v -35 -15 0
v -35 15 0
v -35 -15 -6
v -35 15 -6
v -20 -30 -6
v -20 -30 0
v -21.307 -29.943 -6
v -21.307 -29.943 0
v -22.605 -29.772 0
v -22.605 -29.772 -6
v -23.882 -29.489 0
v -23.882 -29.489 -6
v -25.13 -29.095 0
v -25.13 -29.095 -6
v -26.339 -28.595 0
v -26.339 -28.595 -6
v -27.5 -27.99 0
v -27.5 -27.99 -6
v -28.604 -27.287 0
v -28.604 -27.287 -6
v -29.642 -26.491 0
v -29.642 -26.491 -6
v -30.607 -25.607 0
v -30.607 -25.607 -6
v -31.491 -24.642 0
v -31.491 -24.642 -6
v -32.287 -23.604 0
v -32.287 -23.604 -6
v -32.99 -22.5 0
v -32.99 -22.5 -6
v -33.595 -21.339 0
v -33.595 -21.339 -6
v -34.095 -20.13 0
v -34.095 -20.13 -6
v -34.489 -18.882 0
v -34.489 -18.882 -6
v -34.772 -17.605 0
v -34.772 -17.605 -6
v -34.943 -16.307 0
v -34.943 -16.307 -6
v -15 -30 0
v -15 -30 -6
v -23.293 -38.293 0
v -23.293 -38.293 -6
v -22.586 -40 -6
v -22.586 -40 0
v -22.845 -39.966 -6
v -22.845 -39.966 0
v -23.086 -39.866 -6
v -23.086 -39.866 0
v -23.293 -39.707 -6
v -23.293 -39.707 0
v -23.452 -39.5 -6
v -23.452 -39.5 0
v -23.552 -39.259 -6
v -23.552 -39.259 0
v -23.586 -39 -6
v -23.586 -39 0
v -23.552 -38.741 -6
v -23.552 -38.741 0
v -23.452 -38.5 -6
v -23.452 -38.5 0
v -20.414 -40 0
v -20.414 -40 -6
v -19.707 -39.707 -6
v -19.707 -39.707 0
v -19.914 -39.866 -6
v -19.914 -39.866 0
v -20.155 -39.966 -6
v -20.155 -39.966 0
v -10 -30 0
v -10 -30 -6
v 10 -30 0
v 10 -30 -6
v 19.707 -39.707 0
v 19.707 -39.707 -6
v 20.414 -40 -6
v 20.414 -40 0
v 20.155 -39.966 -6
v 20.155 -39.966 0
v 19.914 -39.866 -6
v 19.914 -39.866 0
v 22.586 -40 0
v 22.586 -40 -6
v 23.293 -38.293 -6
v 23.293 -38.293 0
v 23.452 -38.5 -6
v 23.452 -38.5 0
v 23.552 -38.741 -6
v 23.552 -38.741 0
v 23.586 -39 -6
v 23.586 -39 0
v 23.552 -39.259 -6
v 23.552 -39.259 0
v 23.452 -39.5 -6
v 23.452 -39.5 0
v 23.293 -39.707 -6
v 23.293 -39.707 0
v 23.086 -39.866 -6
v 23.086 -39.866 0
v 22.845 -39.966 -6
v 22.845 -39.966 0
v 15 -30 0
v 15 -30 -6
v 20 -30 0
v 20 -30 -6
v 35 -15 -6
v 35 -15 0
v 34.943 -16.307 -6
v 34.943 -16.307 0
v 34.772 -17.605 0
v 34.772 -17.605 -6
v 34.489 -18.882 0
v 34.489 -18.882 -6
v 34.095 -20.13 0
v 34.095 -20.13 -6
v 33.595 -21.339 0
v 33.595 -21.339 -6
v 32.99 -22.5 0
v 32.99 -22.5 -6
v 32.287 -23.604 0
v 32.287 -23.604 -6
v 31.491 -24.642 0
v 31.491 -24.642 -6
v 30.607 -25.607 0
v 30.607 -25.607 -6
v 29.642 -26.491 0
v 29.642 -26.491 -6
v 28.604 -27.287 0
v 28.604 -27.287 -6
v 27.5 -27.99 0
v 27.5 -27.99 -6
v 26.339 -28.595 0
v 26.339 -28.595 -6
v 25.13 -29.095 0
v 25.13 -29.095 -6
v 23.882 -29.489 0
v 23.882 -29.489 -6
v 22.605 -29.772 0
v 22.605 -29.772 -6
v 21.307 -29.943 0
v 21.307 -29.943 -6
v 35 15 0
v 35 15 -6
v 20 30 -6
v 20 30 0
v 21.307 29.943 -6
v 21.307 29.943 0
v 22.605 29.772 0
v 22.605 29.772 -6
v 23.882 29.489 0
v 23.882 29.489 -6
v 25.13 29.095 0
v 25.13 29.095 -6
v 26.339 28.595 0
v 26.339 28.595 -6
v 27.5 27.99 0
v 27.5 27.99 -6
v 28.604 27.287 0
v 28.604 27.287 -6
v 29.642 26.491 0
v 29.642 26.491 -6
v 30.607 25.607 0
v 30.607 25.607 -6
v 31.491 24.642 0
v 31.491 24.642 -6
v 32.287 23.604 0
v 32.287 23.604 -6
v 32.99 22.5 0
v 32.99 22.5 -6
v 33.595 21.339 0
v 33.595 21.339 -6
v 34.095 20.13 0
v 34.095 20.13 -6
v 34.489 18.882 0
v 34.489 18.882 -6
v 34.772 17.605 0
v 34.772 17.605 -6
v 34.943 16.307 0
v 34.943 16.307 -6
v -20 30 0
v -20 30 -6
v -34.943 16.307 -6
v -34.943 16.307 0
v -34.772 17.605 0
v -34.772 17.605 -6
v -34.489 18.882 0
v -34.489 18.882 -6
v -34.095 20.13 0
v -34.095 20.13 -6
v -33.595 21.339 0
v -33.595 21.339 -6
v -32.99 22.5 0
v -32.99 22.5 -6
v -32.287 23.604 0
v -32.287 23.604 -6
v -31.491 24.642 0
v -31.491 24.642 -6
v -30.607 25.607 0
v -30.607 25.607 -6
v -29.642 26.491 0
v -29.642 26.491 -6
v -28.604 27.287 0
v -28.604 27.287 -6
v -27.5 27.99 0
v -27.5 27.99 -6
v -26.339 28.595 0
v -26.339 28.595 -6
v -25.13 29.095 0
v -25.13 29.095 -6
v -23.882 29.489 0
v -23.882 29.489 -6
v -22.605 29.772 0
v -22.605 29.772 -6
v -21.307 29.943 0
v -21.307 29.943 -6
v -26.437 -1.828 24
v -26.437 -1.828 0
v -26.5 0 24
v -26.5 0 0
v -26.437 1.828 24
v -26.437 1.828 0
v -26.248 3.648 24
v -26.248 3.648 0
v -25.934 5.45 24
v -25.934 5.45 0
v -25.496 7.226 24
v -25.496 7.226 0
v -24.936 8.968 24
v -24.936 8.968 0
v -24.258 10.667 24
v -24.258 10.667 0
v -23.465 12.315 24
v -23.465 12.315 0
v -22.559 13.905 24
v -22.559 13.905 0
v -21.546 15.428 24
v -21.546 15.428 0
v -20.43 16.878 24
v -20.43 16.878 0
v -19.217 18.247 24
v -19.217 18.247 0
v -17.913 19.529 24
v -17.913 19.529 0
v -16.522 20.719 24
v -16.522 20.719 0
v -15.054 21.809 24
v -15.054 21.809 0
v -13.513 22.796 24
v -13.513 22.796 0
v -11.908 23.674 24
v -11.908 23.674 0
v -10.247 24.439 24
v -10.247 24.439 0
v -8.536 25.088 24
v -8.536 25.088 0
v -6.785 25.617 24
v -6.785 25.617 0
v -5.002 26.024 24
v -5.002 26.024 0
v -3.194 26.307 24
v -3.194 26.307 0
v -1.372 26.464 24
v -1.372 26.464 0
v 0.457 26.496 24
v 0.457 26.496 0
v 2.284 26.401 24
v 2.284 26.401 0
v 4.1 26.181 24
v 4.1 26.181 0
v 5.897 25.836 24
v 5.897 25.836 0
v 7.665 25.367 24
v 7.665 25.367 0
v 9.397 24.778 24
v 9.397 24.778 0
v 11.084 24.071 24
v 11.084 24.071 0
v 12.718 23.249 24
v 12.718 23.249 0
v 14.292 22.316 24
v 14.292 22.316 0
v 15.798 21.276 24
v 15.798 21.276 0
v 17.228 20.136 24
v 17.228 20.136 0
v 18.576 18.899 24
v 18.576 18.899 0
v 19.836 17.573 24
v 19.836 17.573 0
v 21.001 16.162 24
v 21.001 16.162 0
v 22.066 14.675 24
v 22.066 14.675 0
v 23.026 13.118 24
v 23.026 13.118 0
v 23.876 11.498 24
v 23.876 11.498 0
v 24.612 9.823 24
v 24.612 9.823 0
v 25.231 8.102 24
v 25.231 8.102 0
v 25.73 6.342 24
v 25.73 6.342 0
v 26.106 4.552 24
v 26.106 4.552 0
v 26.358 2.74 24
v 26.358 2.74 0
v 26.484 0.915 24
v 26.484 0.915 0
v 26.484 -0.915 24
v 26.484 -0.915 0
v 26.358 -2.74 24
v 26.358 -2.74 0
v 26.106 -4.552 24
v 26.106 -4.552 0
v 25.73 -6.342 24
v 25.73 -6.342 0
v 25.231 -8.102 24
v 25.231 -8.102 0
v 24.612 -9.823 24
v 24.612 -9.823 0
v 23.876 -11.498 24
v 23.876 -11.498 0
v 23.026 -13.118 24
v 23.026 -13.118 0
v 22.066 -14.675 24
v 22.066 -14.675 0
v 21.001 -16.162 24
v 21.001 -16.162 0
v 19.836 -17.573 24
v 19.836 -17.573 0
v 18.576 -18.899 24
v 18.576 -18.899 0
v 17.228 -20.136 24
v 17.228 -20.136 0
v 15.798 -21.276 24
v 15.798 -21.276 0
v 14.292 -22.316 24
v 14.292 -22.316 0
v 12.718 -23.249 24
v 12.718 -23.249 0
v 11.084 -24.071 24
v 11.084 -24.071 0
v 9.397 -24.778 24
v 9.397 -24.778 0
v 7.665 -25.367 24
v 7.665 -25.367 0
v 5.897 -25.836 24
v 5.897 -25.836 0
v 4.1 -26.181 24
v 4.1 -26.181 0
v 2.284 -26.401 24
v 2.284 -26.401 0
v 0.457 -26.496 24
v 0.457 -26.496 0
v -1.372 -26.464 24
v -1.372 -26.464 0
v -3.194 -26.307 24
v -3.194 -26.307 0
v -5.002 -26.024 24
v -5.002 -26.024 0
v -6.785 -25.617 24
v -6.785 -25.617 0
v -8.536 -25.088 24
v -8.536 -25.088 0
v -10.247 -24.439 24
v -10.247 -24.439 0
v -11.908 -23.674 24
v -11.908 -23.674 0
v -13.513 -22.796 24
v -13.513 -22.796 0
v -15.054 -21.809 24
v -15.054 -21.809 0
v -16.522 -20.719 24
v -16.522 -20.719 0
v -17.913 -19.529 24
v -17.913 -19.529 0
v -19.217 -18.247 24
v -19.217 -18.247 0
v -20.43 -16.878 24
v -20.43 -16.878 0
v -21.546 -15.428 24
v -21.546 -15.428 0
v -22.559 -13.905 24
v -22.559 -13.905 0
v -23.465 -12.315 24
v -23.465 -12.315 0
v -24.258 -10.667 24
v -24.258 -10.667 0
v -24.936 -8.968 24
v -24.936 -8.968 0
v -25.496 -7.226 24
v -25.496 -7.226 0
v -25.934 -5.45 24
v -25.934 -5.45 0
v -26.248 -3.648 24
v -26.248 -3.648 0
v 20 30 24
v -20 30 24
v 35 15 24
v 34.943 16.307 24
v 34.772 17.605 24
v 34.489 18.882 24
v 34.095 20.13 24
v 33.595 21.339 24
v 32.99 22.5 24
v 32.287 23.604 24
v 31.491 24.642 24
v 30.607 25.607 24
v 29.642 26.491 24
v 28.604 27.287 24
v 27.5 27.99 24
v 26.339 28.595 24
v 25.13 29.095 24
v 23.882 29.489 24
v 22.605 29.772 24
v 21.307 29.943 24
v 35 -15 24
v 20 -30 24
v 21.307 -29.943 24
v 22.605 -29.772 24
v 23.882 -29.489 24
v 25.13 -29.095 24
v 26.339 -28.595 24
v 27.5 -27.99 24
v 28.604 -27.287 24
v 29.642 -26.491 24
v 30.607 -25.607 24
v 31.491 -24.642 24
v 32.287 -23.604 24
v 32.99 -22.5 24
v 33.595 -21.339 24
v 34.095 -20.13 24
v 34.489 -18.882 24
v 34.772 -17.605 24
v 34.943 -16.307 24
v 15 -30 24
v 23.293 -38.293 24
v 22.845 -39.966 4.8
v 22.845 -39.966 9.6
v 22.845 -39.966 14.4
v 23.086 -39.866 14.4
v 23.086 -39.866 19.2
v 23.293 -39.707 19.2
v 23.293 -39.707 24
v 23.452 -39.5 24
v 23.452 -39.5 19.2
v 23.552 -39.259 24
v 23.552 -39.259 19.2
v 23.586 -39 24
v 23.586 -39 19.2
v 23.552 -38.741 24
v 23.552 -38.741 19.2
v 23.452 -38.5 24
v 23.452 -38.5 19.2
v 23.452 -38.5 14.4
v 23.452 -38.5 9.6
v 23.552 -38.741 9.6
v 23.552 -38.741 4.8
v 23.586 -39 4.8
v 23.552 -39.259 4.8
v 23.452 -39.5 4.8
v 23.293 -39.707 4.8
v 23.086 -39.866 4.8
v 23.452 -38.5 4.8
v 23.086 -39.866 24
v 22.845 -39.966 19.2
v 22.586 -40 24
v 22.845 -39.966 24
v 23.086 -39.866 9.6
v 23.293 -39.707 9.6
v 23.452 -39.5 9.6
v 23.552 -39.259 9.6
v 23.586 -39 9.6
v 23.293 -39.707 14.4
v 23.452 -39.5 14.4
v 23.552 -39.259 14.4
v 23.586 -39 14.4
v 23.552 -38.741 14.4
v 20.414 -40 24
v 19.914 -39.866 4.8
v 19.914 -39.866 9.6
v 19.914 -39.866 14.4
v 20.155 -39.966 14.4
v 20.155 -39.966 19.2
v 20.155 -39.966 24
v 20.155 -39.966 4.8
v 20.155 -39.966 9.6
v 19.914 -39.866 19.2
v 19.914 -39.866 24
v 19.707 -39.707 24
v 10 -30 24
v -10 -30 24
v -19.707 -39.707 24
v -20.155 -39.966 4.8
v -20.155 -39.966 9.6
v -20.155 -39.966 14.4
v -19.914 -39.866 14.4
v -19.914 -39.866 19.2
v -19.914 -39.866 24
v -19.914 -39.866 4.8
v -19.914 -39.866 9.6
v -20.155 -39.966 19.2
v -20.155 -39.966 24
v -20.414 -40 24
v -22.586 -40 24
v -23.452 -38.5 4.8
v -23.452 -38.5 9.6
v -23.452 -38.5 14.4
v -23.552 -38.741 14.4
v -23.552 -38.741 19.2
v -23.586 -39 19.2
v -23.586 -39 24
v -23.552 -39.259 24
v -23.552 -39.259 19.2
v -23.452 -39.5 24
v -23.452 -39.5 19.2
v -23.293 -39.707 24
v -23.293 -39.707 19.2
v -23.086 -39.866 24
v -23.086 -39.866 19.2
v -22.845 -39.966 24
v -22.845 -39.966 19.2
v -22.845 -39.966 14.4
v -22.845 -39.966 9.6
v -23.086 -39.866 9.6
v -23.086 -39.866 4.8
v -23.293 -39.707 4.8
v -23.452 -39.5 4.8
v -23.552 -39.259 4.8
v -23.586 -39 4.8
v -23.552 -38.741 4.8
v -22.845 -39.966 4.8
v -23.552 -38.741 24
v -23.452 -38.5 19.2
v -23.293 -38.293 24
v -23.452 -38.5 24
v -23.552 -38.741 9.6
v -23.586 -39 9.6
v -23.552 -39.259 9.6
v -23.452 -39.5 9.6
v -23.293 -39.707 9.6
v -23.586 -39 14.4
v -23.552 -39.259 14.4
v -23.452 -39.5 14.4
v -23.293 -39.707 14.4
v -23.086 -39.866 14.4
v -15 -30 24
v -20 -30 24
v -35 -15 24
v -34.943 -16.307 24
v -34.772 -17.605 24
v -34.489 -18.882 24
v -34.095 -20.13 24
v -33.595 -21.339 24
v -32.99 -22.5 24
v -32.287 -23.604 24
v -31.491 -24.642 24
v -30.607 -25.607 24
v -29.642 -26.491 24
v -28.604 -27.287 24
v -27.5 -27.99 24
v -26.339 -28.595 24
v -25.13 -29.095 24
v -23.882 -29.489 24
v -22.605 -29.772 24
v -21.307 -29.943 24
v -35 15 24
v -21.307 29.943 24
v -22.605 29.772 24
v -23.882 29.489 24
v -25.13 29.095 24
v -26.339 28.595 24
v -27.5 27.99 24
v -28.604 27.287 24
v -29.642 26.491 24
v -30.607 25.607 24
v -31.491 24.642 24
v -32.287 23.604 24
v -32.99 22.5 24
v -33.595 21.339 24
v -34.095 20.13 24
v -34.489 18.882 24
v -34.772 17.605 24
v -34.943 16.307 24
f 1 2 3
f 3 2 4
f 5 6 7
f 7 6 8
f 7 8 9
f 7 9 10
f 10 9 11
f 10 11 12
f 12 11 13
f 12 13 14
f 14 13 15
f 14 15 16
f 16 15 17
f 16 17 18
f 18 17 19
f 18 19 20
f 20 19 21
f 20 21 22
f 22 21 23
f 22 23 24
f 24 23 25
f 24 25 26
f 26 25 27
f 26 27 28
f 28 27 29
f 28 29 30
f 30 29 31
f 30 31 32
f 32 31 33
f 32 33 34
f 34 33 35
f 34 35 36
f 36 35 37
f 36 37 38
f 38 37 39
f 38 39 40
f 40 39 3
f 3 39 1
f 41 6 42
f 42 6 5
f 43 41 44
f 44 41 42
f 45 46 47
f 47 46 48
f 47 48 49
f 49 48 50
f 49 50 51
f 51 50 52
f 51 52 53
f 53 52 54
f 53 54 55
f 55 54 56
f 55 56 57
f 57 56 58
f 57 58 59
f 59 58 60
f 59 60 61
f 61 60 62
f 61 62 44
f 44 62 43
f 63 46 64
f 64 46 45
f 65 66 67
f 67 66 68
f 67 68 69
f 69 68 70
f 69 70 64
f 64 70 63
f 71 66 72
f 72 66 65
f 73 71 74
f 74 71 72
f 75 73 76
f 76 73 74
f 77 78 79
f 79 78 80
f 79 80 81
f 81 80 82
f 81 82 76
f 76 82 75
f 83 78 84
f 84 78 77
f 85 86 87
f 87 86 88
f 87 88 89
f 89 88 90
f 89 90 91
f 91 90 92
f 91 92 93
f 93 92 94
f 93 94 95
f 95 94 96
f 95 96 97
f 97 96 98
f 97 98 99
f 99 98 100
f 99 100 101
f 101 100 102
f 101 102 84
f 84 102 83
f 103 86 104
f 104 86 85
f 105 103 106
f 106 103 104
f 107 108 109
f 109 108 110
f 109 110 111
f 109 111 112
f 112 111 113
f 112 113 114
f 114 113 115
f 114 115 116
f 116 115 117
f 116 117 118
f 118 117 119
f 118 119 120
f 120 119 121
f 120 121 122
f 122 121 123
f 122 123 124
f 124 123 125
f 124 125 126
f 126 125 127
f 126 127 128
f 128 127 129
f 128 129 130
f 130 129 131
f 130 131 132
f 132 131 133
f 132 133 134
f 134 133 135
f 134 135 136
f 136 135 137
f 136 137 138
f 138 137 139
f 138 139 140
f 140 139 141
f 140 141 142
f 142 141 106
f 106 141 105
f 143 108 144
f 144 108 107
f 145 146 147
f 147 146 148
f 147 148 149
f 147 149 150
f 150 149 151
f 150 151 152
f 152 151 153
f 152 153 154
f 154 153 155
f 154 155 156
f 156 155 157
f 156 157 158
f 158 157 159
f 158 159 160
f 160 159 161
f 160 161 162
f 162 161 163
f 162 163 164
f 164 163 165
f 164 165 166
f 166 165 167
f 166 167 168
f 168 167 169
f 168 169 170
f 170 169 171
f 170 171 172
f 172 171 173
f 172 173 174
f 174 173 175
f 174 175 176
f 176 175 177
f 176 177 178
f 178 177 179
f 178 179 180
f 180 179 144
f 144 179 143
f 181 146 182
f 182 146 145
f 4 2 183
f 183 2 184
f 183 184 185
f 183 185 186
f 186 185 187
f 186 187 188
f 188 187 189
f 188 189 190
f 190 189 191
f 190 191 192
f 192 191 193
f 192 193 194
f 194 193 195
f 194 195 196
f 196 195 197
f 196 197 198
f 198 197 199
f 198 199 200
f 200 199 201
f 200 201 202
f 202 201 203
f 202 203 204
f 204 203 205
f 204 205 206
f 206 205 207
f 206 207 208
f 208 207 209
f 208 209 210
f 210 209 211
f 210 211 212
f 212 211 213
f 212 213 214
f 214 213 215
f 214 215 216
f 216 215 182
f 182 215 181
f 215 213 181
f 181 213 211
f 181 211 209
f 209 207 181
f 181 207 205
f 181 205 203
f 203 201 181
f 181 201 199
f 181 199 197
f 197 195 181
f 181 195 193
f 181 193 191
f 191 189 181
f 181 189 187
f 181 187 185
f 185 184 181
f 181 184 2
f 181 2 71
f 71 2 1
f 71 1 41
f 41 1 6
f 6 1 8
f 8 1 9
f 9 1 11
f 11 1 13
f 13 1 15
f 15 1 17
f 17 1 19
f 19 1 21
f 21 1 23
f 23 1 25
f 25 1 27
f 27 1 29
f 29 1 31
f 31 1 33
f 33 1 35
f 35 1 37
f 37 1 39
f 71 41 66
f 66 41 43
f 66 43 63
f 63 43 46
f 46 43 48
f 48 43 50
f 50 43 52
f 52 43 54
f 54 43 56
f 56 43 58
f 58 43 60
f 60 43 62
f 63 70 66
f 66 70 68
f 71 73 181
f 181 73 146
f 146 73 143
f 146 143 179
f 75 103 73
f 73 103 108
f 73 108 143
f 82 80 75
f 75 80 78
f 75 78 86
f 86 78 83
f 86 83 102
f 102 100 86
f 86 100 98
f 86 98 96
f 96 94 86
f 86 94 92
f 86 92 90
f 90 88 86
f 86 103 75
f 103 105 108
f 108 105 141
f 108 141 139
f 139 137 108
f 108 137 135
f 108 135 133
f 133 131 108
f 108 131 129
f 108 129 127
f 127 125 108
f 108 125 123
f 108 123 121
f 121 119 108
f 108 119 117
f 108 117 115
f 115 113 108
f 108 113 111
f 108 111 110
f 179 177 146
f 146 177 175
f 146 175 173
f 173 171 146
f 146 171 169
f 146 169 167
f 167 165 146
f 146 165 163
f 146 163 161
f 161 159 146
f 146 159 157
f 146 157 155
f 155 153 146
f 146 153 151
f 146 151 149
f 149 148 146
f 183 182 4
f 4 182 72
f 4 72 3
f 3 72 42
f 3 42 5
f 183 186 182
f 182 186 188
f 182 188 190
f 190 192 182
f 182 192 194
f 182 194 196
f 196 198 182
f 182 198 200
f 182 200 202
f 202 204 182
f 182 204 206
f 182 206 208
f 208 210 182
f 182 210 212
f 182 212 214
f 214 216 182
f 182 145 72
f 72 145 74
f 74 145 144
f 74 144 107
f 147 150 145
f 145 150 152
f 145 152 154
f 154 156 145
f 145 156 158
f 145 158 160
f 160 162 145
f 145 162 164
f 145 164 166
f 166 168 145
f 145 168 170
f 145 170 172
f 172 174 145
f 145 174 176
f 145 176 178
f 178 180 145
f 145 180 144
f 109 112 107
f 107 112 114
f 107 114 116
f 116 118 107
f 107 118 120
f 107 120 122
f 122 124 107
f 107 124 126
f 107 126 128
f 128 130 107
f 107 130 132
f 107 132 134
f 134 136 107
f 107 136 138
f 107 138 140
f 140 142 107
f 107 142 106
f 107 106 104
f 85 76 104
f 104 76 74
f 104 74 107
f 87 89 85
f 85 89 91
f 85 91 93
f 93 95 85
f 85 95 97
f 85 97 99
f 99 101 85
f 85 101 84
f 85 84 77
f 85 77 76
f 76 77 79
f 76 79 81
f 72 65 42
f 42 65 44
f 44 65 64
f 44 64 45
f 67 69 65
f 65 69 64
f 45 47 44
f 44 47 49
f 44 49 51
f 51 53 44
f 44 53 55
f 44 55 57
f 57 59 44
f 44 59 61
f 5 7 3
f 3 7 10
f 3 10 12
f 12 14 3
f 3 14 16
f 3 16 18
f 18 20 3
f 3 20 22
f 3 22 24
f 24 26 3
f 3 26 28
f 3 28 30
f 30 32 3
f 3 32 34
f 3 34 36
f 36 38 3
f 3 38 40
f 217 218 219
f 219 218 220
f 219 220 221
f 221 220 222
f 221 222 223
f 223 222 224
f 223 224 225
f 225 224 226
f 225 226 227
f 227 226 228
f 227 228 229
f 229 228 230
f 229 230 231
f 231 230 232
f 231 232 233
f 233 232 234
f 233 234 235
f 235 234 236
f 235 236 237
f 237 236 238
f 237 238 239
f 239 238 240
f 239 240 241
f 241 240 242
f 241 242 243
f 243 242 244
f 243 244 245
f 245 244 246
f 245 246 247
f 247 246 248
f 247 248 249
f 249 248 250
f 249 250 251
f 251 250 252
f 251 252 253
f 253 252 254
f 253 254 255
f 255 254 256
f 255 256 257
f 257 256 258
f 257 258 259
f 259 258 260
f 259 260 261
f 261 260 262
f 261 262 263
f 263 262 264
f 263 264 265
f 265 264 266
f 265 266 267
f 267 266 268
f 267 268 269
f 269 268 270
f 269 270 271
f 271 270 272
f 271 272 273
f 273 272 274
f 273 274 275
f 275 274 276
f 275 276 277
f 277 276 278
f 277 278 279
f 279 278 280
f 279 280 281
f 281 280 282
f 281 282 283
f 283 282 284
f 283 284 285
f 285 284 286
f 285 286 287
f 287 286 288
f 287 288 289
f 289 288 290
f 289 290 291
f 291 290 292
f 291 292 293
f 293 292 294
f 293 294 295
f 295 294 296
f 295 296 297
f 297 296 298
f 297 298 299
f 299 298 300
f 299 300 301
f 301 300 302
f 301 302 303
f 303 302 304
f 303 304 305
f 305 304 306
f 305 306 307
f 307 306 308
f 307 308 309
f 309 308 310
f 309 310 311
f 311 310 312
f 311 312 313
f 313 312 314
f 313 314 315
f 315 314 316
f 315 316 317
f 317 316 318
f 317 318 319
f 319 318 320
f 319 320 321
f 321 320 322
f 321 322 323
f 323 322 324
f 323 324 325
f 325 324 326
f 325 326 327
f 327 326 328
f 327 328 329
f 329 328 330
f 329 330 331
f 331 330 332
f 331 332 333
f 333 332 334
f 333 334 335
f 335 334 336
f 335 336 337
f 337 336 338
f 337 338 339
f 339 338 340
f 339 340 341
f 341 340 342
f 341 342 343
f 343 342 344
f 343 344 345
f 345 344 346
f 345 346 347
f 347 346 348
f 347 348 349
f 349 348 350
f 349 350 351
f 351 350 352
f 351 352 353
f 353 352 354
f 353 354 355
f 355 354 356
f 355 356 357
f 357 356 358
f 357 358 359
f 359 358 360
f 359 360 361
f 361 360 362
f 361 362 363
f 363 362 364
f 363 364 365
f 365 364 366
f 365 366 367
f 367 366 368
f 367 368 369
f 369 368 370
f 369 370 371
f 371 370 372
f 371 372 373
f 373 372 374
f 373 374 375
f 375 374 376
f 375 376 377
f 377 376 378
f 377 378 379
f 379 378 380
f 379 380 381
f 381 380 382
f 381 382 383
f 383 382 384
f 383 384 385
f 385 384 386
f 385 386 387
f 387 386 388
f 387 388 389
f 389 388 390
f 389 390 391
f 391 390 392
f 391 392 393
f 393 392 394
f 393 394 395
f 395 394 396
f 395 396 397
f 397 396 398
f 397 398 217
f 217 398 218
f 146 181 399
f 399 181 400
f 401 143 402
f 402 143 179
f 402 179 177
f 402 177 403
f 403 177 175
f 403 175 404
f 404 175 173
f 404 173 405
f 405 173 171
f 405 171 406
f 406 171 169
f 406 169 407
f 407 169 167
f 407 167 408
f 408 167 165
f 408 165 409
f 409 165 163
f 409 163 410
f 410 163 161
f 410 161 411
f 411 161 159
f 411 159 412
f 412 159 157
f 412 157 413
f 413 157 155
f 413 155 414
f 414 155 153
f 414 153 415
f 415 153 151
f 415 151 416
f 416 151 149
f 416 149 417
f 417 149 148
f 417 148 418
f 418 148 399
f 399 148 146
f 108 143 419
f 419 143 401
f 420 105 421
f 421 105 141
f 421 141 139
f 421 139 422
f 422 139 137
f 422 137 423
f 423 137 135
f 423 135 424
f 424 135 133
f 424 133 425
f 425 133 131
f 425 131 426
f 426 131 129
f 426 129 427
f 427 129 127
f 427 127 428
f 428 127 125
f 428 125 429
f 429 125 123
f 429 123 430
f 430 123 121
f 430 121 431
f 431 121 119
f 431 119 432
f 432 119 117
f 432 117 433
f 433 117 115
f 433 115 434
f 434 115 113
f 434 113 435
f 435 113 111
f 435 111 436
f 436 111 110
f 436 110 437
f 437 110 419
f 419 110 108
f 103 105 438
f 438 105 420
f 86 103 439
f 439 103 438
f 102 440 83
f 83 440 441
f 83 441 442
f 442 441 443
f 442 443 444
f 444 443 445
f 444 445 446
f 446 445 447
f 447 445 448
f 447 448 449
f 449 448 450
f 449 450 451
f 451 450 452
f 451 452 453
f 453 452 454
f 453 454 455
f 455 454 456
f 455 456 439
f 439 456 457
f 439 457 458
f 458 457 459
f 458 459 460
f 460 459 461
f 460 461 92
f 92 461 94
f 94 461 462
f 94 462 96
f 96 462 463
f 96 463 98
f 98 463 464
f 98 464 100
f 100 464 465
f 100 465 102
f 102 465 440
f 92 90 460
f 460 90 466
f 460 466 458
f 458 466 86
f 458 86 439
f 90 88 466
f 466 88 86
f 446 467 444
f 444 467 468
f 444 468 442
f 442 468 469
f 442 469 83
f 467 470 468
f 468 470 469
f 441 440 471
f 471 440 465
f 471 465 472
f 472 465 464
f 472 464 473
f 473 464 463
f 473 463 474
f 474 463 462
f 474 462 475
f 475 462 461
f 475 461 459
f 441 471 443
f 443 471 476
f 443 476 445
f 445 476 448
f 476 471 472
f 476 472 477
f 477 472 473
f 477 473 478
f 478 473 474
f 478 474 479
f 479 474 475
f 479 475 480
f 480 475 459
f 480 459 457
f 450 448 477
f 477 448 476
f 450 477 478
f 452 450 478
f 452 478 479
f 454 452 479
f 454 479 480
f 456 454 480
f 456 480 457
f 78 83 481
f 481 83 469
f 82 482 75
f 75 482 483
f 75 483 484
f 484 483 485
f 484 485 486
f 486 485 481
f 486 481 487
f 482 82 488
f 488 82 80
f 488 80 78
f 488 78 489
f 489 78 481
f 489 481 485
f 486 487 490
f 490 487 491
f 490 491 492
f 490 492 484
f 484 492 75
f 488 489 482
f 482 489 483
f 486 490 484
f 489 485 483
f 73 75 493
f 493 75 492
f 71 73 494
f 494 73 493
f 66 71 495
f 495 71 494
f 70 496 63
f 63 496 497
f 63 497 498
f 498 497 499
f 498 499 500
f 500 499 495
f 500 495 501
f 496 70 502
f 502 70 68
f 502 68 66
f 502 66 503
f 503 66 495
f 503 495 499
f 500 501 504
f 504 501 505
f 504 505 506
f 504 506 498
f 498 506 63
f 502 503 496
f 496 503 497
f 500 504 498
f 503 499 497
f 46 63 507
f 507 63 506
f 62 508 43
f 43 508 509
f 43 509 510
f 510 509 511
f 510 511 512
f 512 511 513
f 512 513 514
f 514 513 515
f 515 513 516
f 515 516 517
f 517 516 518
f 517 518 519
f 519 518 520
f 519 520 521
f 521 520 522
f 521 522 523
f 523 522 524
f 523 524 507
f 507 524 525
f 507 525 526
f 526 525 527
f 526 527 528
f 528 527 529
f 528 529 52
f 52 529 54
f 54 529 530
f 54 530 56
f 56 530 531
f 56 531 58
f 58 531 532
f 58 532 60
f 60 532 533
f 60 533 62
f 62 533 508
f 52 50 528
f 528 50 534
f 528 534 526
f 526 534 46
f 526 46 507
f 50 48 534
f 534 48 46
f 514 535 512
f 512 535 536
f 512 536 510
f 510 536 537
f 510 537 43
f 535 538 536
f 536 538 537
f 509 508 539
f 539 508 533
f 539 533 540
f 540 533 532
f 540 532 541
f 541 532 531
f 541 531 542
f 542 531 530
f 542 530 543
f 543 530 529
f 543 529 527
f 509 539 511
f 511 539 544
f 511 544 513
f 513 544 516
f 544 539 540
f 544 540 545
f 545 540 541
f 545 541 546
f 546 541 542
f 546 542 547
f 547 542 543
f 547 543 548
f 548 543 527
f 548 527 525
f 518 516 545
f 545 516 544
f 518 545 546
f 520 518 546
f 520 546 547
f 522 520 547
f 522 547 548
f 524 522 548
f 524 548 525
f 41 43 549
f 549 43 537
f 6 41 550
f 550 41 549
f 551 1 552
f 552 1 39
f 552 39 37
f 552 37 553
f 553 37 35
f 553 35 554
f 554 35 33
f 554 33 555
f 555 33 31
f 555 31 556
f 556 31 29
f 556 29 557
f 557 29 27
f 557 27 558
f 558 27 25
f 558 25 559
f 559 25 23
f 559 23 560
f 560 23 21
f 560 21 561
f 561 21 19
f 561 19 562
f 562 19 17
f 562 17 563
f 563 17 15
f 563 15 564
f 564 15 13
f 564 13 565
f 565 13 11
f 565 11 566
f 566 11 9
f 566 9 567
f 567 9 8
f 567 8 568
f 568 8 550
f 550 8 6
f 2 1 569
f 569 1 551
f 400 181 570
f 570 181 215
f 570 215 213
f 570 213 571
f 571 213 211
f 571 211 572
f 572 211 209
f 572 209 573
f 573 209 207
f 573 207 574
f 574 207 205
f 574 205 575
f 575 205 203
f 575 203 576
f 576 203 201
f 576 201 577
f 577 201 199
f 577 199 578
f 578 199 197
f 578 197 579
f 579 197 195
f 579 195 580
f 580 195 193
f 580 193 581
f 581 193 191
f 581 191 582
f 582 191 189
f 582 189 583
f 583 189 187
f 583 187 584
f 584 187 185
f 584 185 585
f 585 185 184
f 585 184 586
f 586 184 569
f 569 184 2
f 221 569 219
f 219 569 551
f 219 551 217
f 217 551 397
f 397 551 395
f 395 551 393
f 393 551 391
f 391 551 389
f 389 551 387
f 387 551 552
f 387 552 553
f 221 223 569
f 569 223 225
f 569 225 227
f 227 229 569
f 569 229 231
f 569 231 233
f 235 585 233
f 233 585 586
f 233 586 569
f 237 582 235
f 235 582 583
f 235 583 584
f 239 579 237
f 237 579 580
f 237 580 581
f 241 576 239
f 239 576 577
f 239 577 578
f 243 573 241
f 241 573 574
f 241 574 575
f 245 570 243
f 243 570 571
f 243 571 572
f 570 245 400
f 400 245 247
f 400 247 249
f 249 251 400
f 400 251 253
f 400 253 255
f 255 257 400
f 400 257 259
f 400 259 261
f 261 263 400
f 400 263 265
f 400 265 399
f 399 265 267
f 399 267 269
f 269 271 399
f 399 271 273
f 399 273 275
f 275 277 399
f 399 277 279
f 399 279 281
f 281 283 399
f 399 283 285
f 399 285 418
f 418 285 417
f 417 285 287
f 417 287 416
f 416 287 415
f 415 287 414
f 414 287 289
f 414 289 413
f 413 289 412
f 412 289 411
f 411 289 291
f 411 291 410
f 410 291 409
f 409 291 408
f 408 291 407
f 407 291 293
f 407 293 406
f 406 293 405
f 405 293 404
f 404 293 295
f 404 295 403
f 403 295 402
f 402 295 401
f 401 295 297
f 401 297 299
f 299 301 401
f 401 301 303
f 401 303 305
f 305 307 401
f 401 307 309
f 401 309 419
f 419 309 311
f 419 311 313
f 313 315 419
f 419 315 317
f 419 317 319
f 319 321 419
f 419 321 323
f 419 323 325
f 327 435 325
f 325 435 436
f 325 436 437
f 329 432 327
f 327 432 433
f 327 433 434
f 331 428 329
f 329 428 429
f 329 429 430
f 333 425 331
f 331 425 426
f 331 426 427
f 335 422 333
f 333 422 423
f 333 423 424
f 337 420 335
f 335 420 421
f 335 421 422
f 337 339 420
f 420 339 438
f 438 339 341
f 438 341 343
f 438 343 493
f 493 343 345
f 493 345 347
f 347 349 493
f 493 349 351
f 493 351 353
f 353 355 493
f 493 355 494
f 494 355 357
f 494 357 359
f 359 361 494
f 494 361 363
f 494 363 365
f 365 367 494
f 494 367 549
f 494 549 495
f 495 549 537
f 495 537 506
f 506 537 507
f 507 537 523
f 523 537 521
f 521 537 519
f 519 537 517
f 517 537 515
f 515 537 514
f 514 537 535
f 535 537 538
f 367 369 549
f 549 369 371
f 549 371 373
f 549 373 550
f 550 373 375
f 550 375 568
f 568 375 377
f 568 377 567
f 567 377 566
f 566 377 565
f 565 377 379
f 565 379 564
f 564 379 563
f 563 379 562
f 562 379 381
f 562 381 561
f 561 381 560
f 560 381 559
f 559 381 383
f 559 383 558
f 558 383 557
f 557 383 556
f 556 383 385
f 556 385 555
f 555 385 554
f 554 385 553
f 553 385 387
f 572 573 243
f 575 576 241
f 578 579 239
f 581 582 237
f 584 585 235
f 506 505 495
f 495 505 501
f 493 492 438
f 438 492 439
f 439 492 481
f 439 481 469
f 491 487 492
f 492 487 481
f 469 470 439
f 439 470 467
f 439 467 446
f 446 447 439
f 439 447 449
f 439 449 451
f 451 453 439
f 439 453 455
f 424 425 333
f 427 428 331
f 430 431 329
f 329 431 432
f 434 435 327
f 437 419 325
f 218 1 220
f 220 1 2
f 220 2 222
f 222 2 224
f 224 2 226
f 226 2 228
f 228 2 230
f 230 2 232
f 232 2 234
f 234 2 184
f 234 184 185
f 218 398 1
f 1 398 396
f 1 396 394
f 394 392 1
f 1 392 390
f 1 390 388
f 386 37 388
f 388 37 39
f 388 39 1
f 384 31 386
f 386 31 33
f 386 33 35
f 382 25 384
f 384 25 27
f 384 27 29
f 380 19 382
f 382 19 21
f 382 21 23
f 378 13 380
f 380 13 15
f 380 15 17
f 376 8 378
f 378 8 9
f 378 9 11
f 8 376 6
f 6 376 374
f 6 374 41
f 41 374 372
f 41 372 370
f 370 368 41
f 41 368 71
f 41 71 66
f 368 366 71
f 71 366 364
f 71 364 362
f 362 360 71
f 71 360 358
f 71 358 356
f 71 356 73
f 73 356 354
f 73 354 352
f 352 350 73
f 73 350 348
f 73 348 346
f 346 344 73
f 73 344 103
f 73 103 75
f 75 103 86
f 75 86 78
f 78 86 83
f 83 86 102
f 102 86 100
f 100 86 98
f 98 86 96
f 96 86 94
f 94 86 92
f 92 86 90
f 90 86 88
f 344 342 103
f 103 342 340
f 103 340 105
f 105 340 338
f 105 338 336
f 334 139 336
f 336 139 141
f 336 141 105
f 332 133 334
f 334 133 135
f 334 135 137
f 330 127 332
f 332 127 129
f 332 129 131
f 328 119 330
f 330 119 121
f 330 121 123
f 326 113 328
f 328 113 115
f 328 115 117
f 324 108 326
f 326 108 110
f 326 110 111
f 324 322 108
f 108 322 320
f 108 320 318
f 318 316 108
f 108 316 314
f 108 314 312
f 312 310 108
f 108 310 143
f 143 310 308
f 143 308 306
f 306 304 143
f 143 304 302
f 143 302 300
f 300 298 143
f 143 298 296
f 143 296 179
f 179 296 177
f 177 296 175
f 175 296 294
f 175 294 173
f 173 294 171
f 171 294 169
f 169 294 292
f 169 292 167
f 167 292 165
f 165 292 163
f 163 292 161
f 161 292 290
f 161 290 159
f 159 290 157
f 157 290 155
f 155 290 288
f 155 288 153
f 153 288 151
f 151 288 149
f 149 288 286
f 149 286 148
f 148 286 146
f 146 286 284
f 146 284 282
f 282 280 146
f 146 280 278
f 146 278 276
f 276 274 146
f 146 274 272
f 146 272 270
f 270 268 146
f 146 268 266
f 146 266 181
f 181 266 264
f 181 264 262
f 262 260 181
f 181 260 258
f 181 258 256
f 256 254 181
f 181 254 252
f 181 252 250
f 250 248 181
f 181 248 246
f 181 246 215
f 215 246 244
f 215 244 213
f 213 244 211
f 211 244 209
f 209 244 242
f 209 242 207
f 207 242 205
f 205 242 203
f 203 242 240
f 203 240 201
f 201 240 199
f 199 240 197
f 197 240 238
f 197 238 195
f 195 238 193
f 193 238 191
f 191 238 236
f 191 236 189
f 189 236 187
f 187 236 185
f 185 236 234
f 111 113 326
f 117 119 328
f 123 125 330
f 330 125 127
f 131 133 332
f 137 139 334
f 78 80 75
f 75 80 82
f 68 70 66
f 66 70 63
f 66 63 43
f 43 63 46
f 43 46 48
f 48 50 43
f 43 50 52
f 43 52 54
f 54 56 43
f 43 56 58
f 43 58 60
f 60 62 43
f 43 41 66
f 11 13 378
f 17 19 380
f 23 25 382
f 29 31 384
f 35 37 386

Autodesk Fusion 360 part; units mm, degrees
sketch "草图1" plane through (0, 0, 0) normal (0, 0, 1) x (1, 0, 0)
  line L0 (-35, 30) -> (35, 30)
  line L1 (35, 30) -> (35, -30)
  line L2 (35, -30) -> (-35, -30)
  line L3 (-35, -30) -> (-35, 30)
  arc A0 (-20, 30) -> (-35, 15) centre (-20, 15) ccw
  arc A1 (-35, -15) -> (-20, -30) centre (-20, -15) ccw
  arc A2 (20, -30) -> (35, -15) centre (20, -15) ccw
  arc A3 (35, 15) -> (20, 30) centre (20, 15) ccw
  line L4 (-15, -30) -> (-23.2929, -38.2929)
  line L5 (-22.5858, -40) -> (-20.4142, -40)
  line L6 (-19.7071, -39.7071) -> (-10, -30)
  line L7 (10, -30) -> (19.7071, -39.7071)
  line L8 (20.4142, -40) -> (22.5858, -40)
  line L9 (23.2929, -38.2929) -> (15, -30)
  arc A4 (-23.2929, -38.2929) -> (-22.5858, -40) centre (-22.5858, -39) ccw
  arc A5 (-20.4142, -40) -> (-19.7071, -39.7071) centre (-20.4142, -39) ccw
  arc A6 (19.7071, -39.7071) -> (20.4142, -40) centre (20.4142, -39) ccw
  arc A7 (22.5858, -40) -> (23.2929, -38.2929) centre (22.5858, -39) ccw
  circle A8 centre (0, 0) radius 26.5
  line L10 (-12.4856, 30) -> (-10, 30)
  dimension "d2" = 60
  dimension "d3" = 70
  dimension "d4" = 1
  dimension "d5" = 1
  dimension "d6" = 1
  dimension "d7" = 1
  dimension "d8" = 53
extrude "拉伸1" add sketch "草图1" against normal blind 6 contours L0 L1 L2 L3 A0 A1 A2 A3 L10 | L2 L4 L5 L6 A4 A5 | L2 L7 L8 L9 A6 A7 | A8 makes body 1
extrude "拉伸2" add sketch "草图1" along normal blind 24 separate body contours L0 L1 L2 L3 A0 A1 A2 A3 L10 | L2 L4 L5 L6 A4 A5 | L2 L7 L8 L9 A6 A7 makes body 2
